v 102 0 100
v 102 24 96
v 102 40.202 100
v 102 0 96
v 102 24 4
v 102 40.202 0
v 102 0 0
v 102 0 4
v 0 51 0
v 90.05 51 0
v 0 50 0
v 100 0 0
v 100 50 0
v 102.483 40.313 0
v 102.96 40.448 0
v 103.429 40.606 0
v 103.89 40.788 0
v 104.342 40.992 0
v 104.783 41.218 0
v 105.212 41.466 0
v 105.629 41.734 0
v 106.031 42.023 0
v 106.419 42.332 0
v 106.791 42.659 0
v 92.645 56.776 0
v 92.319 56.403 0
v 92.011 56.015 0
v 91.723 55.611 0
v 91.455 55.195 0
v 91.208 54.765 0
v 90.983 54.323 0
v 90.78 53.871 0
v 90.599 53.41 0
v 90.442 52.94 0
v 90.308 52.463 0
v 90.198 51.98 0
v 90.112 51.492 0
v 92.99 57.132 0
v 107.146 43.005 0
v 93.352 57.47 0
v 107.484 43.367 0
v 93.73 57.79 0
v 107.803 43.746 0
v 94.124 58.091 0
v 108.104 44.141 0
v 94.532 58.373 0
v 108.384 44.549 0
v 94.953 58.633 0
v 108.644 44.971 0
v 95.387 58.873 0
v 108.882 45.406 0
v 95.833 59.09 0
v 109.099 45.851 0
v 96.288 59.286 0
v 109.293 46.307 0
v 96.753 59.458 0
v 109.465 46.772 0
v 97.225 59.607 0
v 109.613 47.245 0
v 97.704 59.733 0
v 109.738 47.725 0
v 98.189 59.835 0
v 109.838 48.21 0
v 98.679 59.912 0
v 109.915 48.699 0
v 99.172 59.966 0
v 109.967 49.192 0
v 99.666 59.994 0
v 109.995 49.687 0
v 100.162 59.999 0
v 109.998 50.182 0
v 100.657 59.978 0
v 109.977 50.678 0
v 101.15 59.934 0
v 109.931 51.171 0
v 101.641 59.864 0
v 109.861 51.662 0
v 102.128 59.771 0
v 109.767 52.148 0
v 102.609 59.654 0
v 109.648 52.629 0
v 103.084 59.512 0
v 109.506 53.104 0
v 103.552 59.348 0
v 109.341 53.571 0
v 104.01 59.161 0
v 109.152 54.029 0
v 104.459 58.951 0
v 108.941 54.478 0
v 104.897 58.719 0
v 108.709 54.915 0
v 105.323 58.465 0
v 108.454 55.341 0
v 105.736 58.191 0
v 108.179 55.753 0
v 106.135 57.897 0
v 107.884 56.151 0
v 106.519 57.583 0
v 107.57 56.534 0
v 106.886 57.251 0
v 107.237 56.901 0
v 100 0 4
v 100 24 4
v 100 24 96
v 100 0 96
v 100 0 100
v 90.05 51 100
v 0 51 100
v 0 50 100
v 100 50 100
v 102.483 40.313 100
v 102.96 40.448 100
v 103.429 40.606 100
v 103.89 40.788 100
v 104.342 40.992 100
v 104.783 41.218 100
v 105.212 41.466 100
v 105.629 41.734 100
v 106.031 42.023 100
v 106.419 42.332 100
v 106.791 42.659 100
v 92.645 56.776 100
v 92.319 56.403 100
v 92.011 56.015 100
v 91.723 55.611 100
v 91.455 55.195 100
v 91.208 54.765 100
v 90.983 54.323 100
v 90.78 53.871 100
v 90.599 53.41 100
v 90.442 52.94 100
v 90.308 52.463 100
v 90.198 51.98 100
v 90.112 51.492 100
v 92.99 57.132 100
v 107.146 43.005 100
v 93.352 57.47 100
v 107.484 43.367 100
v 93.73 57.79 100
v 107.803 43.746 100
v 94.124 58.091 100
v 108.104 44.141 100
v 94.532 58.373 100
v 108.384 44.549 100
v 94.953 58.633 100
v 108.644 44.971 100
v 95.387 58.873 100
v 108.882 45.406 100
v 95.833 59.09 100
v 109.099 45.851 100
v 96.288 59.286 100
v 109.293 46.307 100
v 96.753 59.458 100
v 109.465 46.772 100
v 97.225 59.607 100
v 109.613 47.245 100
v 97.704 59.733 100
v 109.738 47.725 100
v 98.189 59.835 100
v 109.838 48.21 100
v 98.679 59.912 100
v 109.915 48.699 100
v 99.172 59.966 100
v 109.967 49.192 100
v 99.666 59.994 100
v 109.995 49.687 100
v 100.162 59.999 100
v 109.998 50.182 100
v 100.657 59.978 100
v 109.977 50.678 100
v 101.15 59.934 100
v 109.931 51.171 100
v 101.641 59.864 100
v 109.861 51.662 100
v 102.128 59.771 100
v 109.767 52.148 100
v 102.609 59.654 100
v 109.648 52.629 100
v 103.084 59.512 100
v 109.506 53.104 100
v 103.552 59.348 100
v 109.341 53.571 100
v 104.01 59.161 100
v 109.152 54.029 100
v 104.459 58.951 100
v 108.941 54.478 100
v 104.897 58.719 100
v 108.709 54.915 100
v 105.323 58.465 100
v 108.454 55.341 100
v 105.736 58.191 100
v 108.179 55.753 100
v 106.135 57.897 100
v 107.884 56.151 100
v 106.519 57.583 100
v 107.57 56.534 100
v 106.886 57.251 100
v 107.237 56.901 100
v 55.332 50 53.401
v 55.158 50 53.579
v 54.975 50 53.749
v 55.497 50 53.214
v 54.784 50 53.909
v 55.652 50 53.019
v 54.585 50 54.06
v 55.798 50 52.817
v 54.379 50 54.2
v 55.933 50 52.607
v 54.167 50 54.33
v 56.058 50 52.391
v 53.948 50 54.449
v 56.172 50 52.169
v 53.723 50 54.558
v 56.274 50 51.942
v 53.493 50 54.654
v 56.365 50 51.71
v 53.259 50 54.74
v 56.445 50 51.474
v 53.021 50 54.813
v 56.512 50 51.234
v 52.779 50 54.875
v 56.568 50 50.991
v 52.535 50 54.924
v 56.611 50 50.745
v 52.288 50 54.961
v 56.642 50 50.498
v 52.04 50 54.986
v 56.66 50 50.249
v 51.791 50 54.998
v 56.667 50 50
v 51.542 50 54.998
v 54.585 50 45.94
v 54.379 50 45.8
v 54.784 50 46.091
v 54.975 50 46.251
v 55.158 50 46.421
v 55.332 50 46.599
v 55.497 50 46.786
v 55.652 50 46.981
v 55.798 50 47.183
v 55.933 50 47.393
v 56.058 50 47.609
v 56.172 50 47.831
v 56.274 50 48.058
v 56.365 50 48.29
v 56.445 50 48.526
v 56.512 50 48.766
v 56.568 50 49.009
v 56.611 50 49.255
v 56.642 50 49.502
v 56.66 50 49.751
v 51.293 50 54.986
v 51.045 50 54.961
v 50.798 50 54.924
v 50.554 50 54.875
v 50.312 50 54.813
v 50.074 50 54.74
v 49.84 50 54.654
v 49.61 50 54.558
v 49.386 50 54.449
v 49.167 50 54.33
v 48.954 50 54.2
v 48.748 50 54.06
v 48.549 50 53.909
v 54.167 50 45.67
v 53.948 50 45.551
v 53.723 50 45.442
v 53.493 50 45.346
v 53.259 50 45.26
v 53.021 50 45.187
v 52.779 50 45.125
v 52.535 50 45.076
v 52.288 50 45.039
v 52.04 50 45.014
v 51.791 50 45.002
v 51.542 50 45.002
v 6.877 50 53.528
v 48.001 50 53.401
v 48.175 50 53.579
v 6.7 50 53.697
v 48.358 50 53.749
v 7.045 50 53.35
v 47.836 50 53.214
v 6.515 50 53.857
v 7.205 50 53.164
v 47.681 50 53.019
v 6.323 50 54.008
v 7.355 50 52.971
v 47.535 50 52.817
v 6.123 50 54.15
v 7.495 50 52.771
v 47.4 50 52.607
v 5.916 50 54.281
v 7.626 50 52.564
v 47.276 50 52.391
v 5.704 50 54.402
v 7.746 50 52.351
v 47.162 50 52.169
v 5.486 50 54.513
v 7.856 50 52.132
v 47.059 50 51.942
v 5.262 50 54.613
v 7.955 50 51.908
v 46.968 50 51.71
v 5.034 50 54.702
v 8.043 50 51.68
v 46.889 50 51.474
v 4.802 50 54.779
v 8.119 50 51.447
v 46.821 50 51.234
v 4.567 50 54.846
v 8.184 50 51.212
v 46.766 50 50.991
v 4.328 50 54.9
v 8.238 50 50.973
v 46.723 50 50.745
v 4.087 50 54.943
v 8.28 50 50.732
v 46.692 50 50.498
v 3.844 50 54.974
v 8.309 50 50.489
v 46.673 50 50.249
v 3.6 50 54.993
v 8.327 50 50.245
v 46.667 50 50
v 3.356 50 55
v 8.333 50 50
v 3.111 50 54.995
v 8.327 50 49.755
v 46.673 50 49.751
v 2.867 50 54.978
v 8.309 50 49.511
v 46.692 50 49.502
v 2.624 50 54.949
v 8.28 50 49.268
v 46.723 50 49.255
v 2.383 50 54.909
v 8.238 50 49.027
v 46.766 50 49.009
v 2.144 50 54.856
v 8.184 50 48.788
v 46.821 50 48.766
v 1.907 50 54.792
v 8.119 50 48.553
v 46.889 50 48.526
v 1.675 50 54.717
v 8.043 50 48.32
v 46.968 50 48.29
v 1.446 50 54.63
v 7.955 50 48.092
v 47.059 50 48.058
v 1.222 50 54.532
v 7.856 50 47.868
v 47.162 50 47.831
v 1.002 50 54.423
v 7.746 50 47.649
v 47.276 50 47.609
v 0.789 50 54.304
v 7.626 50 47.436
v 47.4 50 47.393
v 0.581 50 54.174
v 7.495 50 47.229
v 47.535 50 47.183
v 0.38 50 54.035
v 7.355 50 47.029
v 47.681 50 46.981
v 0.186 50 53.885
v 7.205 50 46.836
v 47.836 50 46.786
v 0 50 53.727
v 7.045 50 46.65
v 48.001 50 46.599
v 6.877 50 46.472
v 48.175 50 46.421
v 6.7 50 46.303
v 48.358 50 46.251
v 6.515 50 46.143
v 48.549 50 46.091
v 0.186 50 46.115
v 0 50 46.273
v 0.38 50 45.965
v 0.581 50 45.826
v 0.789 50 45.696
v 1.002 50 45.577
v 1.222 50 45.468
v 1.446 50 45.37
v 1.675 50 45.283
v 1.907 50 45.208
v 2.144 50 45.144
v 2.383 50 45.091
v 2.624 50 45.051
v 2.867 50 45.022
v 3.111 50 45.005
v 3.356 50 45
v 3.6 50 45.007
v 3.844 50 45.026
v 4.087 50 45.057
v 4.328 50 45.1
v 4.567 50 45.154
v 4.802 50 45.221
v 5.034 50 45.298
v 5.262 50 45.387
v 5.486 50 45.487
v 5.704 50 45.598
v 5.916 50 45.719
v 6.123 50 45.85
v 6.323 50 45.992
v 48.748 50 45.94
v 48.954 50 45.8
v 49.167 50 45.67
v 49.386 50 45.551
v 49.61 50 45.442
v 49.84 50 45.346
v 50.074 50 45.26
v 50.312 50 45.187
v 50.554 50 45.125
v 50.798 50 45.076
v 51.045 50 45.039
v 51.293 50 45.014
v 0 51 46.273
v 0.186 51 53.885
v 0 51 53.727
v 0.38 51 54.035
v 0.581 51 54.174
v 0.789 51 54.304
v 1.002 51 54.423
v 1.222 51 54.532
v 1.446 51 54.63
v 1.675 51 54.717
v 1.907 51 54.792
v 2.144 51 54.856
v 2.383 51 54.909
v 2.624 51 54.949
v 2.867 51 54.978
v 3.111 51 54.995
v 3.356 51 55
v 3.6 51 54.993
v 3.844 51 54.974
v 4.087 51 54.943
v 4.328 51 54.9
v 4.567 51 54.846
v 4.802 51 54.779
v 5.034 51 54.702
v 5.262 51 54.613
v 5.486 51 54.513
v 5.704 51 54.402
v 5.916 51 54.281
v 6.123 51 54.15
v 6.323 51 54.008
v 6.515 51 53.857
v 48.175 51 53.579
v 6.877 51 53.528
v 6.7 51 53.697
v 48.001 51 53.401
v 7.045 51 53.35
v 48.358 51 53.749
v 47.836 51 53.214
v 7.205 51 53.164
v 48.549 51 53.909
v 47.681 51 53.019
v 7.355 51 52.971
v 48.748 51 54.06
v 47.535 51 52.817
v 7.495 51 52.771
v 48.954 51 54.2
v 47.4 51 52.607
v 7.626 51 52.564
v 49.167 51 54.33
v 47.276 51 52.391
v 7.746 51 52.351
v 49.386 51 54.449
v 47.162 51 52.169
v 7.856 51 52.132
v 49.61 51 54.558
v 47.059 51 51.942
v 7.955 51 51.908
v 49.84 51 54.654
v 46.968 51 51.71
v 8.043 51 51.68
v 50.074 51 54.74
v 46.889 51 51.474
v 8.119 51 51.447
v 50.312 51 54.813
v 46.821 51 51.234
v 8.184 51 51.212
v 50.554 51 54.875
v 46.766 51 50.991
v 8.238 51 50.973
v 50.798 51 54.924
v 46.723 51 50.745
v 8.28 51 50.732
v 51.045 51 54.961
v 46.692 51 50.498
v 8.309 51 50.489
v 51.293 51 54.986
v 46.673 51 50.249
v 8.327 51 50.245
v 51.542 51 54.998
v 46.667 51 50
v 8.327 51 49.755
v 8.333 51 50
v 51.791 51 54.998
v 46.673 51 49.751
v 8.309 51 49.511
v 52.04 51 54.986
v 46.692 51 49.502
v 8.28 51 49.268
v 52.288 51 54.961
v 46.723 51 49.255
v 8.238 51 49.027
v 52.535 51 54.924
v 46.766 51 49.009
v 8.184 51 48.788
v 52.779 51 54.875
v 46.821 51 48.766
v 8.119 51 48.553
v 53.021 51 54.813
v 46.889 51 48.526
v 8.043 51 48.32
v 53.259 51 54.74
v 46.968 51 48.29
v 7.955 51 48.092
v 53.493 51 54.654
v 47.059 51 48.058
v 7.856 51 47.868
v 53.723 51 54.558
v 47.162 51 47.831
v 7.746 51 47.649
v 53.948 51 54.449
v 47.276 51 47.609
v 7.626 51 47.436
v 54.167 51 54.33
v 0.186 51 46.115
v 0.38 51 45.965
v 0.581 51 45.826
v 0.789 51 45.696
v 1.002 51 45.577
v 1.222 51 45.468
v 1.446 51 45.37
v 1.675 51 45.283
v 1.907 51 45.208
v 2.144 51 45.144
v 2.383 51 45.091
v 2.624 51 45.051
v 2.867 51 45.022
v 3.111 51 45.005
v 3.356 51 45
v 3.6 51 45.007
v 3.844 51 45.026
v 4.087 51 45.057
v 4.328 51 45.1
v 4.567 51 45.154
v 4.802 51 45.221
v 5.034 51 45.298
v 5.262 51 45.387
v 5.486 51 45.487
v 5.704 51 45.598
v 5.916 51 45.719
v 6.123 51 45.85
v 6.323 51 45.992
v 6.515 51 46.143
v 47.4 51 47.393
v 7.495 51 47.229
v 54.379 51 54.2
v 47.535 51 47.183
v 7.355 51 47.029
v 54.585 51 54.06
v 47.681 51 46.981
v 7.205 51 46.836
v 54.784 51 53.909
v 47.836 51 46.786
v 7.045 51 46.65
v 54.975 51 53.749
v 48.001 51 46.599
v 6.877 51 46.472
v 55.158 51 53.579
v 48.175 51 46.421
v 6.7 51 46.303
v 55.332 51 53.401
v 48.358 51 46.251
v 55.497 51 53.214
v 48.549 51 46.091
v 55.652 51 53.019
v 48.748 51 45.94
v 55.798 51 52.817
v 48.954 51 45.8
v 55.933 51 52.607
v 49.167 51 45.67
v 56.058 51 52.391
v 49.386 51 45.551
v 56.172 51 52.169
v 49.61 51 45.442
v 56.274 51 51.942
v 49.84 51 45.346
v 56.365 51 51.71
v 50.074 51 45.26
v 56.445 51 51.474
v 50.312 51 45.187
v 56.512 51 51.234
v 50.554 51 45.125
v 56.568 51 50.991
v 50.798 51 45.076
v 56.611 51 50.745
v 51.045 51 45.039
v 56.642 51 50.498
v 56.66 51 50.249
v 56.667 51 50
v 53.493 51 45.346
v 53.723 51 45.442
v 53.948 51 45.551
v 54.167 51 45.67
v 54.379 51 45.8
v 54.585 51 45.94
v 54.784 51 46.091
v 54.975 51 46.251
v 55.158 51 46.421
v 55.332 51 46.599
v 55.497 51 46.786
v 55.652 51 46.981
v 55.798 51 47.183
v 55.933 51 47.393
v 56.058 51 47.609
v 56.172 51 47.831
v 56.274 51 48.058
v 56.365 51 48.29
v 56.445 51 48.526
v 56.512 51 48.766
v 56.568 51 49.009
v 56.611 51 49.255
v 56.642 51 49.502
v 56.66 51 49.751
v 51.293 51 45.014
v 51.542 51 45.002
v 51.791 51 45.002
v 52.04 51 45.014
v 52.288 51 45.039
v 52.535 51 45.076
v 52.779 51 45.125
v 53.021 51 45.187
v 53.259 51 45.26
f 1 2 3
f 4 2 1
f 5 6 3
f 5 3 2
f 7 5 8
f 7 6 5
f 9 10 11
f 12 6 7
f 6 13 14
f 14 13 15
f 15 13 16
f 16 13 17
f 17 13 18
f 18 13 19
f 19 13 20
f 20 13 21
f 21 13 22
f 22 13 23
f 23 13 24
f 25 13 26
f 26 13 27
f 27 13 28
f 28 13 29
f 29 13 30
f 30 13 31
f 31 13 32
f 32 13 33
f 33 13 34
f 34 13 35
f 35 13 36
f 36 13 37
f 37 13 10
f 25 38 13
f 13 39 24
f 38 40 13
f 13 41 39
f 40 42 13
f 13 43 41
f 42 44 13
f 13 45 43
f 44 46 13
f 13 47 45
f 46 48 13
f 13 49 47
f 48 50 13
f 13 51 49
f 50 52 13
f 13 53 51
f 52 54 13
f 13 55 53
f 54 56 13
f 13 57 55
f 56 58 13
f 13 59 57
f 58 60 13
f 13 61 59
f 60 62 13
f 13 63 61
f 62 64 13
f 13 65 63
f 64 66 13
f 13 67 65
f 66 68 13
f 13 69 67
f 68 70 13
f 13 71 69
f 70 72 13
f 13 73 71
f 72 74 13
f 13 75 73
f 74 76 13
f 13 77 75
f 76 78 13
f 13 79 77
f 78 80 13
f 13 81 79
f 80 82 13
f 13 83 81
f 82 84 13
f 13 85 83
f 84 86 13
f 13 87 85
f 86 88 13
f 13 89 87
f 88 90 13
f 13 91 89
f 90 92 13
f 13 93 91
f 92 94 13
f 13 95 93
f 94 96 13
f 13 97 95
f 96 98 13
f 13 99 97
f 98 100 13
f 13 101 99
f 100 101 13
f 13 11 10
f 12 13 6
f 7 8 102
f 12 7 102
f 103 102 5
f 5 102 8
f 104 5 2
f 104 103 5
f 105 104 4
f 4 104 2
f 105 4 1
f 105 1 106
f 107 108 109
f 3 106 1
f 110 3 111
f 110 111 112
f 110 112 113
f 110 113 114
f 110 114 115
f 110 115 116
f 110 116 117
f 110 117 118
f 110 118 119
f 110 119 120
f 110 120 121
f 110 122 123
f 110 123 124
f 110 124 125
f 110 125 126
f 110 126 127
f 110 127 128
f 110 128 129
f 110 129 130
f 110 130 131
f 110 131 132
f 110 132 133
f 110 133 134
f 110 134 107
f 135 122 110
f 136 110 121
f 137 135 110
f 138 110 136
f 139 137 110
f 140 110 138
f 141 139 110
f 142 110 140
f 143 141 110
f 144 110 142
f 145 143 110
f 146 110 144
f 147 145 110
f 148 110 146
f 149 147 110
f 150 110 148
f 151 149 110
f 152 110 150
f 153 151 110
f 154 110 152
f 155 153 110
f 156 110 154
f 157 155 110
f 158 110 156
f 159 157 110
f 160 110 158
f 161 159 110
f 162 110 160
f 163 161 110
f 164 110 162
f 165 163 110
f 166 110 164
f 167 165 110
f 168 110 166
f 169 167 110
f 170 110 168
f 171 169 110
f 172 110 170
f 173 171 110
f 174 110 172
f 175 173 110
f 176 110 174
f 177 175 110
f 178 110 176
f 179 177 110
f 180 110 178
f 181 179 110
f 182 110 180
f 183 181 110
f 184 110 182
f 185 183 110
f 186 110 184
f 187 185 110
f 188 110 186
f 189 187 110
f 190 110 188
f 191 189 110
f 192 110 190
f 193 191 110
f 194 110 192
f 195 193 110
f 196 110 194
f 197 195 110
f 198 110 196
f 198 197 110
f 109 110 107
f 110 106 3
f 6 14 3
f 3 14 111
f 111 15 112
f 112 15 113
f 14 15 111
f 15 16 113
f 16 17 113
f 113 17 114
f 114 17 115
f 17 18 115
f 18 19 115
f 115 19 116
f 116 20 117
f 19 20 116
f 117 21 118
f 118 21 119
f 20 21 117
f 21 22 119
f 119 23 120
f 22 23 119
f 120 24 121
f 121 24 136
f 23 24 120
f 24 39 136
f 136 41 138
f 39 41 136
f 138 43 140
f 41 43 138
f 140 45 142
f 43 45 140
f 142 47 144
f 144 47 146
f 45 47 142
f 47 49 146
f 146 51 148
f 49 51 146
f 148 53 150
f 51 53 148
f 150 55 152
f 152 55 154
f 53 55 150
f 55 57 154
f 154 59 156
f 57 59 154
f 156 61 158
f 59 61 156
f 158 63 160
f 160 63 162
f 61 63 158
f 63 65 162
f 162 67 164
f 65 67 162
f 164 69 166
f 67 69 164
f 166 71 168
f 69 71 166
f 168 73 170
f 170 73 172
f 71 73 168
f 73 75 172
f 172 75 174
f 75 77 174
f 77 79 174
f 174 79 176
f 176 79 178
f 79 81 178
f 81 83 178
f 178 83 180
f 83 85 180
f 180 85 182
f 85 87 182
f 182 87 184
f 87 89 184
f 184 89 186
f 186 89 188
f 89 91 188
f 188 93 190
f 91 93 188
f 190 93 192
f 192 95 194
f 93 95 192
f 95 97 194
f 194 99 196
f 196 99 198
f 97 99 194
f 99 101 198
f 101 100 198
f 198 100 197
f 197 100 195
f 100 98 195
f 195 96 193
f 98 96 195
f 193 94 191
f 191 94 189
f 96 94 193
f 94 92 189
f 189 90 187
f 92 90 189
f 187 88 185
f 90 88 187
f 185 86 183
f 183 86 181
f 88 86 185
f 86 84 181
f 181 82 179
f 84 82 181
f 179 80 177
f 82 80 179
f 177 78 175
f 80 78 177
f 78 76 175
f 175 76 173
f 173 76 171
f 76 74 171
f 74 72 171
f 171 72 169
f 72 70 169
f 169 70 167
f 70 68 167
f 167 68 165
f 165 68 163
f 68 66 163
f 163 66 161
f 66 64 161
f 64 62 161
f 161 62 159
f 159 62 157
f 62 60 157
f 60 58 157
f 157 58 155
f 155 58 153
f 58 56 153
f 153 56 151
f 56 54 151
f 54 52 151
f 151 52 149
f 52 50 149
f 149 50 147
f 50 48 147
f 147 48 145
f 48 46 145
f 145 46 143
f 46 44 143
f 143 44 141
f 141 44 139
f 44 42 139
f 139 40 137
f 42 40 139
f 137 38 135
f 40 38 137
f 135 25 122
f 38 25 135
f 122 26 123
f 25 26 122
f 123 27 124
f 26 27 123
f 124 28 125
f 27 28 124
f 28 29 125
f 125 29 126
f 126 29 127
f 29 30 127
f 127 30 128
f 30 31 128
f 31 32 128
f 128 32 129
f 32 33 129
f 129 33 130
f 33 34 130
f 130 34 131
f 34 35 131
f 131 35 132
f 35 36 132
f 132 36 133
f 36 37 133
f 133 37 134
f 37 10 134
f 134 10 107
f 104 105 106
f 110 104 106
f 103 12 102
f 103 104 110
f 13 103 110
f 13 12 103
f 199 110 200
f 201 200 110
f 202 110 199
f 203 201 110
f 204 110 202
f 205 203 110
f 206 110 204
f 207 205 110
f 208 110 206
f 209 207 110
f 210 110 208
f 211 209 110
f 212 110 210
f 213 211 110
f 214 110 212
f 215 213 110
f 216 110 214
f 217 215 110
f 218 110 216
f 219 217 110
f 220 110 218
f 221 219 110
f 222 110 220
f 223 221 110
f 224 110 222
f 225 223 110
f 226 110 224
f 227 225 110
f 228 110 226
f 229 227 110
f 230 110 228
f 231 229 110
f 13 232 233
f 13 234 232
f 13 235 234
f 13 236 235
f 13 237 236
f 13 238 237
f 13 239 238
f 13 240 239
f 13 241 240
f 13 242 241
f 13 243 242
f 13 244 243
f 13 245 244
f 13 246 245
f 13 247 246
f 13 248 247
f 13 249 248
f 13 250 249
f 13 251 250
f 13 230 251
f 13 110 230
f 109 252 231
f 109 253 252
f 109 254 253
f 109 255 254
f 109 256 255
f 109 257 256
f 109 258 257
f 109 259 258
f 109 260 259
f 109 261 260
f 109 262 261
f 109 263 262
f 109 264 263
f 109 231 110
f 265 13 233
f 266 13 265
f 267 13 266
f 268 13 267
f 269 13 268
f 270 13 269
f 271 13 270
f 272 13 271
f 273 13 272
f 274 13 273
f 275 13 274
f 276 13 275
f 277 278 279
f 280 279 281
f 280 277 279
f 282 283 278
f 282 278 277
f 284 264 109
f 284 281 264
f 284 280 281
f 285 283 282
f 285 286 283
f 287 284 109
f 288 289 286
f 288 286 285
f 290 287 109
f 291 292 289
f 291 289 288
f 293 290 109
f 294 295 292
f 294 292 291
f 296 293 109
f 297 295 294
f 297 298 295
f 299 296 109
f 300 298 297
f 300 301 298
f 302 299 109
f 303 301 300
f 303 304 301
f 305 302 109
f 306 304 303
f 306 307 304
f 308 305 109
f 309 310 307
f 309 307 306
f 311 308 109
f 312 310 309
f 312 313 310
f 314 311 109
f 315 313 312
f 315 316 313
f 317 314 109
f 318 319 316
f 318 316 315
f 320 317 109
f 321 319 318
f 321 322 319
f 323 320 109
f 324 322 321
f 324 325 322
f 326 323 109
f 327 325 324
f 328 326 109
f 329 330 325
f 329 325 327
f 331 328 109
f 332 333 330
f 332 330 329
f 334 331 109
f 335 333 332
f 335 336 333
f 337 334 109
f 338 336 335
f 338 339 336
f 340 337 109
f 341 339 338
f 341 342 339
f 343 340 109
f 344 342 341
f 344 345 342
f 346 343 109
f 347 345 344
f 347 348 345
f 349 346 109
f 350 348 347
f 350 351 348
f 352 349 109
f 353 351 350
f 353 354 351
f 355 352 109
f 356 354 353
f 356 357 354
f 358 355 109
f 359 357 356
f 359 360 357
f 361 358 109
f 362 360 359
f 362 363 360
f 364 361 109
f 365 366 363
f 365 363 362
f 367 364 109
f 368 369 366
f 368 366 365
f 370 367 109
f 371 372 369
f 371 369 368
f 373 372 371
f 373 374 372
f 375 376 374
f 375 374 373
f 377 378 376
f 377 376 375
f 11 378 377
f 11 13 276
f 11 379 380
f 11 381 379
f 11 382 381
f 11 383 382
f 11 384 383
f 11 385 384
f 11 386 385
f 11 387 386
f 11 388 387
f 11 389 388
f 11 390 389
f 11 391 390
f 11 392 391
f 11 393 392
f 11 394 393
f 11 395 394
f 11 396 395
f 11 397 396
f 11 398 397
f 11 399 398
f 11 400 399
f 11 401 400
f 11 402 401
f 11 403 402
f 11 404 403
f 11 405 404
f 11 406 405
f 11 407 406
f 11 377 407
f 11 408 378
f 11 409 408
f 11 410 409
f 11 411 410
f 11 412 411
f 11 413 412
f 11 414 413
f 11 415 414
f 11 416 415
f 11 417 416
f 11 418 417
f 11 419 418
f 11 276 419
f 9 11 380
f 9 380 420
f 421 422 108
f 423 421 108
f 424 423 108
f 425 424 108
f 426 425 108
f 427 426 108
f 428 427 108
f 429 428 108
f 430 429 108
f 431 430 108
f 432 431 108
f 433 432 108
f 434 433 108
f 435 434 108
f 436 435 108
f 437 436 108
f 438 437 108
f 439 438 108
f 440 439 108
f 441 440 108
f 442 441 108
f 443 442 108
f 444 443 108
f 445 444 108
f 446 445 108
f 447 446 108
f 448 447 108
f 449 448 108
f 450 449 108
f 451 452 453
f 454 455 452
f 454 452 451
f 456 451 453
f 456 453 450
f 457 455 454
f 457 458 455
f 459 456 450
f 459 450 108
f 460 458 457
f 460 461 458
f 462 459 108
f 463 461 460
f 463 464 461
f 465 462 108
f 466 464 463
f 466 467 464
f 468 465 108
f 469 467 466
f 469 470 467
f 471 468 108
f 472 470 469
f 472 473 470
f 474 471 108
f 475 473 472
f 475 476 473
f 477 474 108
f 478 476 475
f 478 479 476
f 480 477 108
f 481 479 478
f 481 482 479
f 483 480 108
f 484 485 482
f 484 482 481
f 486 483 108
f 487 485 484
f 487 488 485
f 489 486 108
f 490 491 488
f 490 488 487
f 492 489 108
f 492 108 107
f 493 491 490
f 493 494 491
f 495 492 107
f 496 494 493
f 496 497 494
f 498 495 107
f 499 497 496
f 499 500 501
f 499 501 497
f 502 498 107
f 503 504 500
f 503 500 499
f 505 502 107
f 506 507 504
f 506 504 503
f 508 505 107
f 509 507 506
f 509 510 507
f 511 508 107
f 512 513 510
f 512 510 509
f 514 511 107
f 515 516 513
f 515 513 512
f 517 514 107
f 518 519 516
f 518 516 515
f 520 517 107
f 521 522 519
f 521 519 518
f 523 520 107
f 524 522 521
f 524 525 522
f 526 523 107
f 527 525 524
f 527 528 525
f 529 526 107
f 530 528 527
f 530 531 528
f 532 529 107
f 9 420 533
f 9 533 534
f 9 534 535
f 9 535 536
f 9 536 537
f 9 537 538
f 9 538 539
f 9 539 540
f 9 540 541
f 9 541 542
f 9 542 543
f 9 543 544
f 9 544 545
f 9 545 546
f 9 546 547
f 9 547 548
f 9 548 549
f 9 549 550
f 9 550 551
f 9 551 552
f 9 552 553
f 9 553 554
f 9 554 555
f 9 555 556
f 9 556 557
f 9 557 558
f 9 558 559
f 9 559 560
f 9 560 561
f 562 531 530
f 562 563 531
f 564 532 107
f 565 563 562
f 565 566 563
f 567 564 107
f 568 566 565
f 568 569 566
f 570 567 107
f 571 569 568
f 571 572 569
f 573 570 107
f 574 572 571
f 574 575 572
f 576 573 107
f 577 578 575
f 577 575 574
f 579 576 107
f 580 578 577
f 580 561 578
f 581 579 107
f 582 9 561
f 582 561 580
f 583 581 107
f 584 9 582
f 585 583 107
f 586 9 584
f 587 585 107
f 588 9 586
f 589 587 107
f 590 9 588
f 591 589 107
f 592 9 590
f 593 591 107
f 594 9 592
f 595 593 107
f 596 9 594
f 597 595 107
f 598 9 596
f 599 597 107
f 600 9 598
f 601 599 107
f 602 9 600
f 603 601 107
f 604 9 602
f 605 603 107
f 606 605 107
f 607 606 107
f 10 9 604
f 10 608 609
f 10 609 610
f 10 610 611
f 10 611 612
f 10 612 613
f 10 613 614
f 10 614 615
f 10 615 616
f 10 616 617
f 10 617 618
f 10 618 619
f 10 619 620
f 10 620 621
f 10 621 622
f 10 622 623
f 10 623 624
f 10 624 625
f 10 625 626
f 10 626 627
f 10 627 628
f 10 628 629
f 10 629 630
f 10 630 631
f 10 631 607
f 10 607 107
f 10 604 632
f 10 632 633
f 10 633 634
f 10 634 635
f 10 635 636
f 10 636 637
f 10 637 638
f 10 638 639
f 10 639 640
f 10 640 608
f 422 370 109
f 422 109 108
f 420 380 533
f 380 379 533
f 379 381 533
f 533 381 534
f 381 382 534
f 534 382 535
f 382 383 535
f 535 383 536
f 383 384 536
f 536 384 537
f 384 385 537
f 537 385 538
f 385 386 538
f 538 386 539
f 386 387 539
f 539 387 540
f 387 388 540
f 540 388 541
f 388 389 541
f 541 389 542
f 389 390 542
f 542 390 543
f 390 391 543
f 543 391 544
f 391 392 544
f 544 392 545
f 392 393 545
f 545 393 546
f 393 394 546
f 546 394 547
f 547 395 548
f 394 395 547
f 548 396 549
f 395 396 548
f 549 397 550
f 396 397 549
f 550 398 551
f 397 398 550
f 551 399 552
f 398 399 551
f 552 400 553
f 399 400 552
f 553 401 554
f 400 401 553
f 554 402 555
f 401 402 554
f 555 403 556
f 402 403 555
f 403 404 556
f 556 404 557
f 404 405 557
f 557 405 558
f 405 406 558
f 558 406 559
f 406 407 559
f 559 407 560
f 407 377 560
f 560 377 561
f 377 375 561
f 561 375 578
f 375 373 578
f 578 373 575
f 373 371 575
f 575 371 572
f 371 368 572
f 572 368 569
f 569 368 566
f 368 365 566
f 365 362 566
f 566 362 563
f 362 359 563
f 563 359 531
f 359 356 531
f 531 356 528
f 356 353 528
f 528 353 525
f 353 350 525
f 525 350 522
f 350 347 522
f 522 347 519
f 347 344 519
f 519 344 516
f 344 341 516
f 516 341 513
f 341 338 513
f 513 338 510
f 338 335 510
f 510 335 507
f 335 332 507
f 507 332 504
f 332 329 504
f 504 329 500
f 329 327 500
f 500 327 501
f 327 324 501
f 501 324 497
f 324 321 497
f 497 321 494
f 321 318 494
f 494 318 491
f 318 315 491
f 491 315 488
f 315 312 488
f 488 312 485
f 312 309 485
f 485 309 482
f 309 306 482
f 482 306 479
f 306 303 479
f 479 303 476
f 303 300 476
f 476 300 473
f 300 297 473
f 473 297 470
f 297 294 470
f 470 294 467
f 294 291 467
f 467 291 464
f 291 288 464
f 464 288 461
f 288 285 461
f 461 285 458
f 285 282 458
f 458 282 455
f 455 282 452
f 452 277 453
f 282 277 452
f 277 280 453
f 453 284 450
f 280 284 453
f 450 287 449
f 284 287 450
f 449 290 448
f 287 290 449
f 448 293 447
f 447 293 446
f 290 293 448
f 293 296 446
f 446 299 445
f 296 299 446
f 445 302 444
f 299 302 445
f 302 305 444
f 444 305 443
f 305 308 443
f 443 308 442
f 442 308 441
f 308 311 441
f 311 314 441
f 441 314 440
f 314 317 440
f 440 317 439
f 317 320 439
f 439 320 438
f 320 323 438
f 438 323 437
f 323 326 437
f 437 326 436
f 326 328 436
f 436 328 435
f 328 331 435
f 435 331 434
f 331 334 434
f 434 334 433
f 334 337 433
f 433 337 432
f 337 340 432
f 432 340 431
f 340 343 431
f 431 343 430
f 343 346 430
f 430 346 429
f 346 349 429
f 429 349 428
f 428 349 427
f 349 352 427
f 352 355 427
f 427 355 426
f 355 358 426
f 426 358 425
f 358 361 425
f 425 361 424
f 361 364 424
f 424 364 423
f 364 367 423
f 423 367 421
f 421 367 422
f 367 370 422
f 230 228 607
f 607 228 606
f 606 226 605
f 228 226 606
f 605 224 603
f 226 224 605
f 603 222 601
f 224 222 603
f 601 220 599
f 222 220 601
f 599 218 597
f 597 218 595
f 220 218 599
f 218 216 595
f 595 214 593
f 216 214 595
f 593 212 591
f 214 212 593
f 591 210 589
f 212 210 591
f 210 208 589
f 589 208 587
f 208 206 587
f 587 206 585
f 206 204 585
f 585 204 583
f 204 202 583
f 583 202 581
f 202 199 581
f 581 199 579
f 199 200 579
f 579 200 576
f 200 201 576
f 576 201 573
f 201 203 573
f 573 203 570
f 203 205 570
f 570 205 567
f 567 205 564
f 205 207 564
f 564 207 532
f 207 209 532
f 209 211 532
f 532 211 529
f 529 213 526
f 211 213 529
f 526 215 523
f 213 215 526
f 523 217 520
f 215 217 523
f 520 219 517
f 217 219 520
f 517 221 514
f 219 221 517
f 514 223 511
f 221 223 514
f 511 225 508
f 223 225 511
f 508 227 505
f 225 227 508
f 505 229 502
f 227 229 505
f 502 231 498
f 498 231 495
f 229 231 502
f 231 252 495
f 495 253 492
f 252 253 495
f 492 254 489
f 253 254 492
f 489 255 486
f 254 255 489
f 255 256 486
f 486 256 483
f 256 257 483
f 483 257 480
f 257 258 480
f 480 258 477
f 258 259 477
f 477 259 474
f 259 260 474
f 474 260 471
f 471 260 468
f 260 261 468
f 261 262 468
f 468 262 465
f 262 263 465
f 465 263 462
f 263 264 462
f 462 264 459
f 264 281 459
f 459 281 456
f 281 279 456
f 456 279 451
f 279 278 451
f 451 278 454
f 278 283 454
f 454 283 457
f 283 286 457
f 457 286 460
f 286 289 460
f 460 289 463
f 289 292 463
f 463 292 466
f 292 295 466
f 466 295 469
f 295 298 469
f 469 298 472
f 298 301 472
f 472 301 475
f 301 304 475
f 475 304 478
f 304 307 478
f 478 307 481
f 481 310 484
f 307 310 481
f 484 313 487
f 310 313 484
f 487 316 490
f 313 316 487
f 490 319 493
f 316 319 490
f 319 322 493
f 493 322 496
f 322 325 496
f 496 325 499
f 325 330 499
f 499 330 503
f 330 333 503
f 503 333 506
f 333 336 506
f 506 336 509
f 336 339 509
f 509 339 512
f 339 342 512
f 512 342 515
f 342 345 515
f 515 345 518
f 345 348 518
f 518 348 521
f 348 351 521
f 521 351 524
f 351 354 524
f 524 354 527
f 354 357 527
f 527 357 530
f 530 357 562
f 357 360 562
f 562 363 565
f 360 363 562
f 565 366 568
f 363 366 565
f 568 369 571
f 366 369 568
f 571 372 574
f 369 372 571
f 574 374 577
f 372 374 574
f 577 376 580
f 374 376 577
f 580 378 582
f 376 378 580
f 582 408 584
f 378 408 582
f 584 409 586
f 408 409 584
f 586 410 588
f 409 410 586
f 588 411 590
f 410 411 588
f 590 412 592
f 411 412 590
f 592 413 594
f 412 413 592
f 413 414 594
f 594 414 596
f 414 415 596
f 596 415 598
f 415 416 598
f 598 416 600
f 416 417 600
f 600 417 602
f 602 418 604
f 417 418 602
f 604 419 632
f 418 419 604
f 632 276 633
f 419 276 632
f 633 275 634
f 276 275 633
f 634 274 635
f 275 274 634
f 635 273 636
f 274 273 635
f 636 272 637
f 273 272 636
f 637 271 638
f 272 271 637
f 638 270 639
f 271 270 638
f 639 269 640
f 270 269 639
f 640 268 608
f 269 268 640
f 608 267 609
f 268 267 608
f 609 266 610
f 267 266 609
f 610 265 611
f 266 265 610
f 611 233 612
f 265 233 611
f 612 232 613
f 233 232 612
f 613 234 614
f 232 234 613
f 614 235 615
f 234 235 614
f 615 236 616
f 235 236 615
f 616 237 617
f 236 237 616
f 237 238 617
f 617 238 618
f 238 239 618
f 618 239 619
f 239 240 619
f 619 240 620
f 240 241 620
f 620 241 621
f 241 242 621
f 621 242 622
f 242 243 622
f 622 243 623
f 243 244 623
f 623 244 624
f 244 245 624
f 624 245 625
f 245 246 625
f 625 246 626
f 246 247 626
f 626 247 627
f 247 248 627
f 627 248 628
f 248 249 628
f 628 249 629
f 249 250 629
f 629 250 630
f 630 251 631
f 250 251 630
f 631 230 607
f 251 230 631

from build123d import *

# Parameters (mm, degrees)
PAD_DEPTH       = 100
SKETCH001_R     = 5
POCKET_DEPTH    = 60.001
SKETCH002_W     = 24
SKETCH002_H     = 92
POCKET001_DEPTH = 110.001


with BuildPart() as part:
    # Sketch → Pad (new body)
    with BuildSketch(Plane.XY):
        with BuildLine():
            Line((100, 0), (100, 50))
            Line((100, 50), (0, 50))
            Line((0, 50), (0, 51))
            Line((0, 51), (90.050126, 51))
            ThreePointArc((102, 40.202041), (106.704409, 57.419629), (90.050126, 51))
            Line((102, 40.202041), (102, 0))
            Line((102, 0), (100, 0))
        make_face()
    extrude(amount=PAD_DEPTH)

    # Sketch001 → Pocket (cut, through all)
    with BuildSketch(Plane.XZ):
        with Locations((3.333333, 50)):
            Circle(SKETCH001_R)
        with Locations((51.666667, 50)):
            Circle(SKETCH001_R)
    extrude(amount=-POCKET_DEPTH, mode=Mode.SUBTRACT)

    # Sketch002 → Pocket001 (cut, through all)
    with BuildSketch(Plane.YZ):
        with Locations((12, 50)):
            Rectangle(SKETCH002_W, SKETCH002_H)
    extrude(amount=POCKET001_DEPTH, mode=Mode.SUBTRACT)


solid = part.part
